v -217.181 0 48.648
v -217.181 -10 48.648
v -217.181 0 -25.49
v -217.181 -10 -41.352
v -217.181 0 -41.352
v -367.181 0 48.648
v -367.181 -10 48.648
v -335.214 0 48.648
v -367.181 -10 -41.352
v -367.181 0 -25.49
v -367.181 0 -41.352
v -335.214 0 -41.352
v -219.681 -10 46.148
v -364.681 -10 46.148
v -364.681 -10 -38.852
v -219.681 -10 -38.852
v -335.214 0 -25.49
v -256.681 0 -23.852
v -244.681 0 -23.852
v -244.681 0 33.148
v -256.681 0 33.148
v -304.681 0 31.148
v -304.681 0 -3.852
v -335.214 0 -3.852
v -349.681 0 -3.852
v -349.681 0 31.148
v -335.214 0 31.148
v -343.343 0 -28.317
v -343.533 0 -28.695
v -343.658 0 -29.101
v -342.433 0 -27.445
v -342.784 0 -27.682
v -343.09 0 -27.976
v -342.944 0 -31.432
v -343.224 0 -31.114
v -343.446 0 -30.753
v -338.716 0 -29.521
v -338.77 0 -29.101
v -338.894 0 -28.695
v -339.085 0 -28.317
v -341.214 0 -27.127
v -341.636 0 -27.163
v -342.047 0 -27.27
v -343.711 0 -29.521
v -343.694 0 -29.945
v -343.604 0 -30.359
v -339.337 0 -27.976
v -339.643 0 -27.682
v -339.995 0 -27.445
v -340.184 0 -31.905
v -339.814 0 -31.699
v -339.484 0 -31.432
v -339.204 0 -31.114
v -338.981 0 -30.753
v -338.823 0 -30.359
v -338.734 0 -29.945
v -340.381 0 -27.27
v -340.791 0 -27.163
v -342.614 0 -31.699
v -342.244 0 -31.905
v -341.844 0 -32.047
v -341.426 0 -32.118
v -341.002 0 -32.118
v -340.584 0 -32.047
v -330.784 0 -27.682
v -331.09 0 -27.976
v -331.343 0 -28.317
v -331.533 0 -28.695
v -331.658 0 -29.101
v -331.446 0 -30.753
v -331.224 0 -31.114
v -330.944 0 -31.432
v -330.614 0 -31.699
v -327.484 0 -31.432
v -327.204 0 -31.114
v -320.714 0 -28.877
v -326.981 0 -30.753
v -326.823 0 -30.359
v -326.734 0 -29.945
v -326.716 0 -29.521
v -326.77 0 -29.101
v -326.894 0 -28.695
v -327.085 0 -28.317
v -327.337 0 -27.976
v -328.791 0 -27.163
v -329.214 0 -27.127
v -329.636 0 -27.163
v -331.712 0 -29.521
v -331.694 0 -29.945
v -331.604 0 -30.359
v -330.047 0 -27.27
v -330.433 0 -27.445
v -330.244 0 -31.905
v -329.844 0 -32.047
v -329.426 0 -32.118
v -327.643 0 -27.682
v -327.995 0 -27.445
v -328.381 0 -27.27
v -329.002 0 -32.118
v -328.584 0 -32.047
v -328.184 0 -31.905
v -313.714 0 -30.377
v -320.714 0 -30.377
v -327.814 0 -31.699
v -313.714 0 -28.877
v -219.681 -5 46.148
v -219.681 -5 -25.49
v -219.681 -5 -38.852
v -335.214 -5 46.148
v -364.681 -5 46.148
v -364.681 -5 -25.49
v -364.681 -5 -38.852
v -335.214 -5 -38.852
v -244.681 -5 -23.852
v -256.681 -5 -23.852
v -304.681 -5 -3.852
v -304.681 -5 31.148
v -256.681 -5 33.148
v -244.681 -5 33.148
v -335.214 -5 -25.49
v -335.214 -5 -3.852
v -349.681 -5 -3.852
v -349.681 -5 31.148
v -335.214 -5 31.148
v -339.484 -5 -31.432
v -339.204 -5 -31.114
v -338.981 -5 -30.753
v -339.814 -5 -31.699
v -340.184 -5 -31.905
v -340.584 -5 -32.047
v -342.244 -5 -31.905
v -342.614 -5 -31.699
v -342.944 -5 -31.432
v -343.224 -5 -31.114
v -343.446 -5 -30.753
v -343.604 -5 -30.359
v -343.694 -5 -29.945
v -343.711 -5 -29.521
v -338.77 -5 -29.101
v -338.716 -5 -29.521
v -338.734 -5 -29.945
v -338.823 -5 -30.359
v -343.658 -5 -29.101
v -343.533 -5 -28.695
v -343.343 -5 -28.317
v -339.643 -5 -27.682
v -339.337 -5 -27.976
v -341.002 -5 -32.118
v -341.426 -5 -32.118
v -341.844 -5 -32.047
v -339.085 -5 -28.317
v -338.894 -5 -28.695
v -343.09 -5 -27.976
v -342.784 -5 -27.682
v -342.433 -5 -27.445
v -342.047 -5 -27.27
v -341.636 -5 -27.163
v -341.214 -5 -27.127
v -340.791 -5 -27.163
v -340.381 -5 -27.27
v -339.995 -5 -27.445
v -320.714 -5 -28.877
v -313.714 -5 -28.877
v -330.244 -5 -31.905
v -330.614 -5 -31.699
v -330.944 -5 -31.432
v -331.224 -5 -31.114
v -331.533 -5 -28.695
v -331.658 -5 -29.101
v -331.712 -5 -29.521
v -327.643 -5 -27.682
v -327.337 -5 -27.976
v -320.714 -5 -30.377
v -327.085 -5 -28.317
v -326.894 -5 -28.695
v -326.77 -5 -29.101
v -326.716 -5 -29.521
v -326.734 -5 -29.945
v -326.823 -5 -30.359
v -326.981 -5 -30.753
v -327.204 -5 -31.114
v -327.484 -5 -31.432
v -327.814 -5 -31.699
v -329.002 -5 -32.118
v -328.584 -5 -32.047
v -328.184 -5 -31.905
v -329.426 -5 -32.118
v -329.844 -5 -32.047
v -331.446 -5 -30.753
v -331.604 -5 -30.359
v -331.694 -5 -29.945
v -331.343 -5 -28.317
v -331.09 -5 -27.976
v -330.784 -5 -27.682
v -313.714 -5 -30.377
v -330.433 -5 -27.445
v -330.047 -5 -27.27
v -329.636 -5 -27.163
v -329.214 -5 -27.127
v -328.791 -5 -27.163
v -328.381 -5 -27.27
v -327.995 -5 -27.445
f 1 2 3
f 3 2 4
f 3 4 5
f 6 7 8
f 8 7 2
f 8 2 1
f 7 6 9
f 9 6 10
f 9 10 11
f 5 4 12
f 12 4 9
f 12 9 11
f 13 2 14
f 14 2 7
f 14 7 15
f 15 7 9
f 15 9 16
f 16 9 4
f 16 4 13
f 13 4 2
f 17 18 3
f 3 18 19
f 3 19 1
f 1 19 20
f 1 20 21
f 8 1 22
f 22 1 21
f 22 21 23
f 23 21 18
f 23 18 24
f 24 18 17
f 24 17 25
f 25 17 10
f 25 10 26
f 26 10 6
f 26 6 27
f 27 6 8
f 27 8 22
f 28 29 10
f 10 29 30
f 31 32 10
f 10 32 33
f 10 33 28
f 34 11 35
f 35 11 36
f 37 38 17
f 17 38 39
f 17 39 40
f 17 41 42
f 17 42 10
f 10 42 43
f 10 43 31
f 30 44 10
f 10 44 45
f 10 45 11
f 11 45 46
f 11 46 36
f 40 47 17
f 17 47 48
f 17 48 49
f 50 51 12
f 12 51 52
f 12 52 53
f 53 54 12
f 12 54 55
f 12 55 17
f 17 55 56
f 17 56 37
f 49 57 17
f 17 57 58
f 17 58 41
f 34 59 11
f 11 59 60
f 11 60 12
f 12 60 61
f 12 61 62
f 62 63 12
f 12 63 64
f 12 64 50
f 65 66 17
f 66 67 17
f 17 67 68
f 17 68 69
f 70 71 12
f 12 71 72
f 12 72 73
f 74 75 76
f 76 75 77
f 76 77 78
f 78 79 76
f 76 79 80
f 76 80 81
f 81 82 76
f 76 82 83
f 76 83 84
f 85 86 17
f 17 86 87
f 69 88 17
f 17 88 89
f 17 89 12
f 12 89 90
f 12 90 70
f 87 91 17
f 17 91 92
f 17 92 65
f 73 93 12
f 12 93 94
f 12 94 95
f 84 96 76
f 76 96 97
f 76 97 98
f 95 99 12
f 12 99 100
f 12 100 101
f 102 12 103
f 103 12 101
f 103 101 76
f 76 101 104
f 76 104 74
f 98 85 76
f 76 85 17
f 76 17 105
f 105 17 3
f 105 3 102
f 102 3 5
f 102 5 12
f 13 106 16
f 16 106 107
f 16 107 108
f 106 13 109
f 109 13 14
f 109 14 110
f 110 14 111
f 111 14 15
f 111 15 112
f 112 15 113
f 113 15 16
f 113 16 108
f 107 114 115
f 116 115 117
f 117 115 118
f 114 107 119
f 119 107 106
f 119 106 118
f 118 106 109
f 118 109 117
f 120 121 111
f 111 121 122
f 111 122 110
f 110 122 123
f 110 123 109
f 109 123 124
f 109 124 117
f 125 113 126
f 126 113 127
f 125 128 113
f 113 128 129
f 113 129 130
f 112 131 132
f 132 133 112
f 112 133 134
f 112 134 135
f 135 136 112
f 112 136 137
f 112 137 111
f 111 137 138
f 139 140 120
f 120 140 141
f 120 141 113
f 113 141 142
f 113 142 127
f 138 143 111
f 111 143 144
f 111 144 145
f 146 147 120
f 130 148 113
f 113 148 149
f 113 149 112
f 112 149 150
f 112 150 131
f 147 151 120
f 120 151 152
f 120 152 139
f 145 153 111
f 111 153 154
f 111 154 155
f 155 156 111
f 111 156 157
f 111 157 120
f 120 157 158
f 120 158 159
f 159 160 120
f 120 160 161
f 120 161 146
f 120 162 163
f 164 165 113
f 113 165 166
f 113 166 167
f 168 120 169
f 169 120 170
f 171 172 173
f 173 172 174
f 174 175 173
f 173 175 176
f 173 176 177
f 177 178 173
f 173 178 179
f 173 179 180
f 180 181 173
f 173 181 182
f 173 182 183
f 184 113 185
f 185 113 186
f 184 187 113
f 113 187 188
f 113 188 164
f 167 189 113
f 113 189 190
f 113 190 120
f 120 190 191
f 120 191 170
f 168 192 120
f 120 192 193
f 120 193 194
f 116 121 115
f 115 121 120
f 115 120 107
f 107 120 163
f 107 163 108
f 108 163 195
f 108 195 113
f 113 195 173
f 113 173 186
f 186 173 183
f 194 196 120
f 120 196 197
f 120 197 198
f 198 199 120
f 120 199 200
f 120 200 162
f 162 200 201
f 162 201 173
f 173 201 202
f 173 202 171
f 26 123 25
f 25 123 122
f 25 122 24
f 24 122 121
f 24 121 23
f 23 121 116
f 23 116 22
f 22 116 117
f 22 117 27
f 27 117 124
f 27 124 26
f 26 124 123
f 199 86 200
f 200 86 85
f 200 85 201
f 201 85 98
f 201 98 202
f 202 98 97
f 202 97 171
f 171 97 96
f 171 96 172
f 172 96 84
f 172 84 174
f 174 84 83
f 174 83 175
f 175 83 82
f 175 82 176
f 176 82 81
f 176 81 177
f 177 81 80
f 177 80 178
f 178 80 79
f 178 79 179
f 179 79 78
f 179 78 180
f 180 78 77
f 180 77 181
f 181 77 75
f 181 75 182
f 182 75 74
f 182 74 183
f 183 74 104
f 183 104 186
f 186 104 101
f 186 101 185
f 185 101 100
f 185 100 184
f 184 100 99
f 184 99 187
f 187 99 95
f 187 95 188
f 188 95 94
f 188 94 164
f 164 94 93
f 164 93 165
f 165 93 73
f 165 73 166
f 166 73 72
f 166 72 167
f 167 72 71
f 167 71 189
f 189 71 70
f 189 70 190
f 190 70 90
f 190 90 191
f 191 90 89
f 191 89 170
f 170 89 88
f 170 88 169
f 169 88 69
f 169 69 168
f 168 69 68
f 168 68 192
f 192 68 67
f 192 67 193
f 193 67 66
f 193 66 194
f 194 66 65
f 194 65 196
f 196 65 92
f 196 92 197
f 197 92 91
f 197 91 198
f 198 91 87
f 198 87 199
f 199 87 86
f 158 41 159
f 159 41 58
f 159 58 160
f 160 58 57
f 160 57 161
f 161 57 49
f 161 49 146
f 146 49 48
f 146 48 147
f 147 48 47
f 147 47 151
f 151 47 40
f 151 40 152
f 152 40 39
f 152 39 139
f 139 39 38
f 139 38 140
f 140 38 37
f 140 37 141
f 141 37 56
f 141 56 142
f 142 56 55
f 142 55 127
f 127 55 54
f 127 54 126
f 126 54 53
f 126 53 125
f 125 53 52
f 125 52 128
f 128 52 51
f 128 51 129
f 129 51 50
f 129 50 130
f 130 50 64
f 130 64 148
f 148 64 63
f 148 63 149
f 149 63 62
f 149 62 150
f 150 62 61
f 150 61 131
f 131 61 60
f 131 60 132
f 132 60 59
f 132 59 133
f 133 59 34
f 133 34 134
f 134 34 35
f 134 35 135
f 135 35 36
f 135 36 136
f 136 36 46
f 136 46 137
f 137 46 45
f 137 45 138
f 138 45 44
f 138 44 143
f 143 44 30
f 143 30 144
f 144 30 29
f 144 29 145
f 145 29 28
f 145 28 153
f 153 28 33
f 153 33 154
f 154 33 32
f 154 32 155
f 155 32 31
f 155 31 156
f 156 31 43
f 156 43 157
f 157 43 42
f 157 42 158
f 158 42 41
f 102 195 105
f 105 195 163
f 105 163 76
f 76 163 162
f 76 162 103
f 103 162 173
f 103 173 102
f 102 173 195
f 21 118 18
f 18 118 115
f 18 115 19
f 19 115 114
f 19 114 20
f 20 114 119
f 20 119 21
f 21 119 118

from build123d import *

# Parameters (mm, degrees)
SKETCH6_W           = 150
SKETCH6_H           = 90
BOSS_EXTRUDE1_DEPTH = 10
SKETCH7_W           = 145
SKETCH7_H           = 85
CUT_EXTRUDE1_DEPTH  = 10
SKETCH2_W           = 45
SKETCH2_H           = 35
CUT_EXTRUDE2_DEPTH  = 10
SKETCH4_R           = 2.5
CUT_EXTRUDE3_DEPTH  = 10
SKETCH5_W           = 7
SKETCH5_H           = 1.5
CUT_EXTRUDE4_DEPTH  = 10
SKETCH3_W           = 12
SKETCH3_H           = 57
CUT_EXTRUDE5_DEPTH  = 10


with BuildPart() as part:
    # Sketch6 → Boss-Extrude1 (new body)
    with BuildSketch(Plane(origin=(0, 0, 0), x_dir=(1, 0, 0), z_dir=(0, 1, 0))):
        with Locations((-292.180819859, -3.647511649)):
            Rectangle(SKETCH6_W, SKETCH6_H)
    extrude(amount=-BOSS_EXTRUDE1_DEPTH)

    # Sketch7 → Cut-Extrude1 (cut)
    with BuildSketch(Plane(origin=(0, -5, 0), x_dir=(1, 0, 0), z_dir=(0, 1, 0))):
        with Locations((-292.180819859, -3.647511649)):
            Rectangle(SKETCH7_W, SKETCH7_H)
    extrude(amount=-CUT_EXTRUDE1_DEPTH, mode=Mode.SUBTRACT)

    # Sketch2 → Cut-Extrude2 (cut)
    with BuildSketch(Plane(origin=(0, 0, 0), x_dir=(1, 0, 0), z_dir=(0, 1, 0))):
        with Locations((-327.180819859, -13.647511649)):
            Rectangle(SKETCH2_W, SKETCH2_H)
    extrude(amount=-CUT_EXTRUDE2_DEPTH, mode=Mode.SUBTRACT)

    # Sketch4 → Cut-Extrude3 (cut)
    with BuildSketch(Plane(origin=(0, 0, 0), x_dir=(1, 0, 0), z_dir=(0, 1, 0))):
        with Locations(Location((-341.213762503, 29.627320544, 0), (0, 0, 270))):
            Circle(SKETCH4_R)
        with Locations(Location((-329.213762503, 29.627320544, 0), (0, 0, 270))):
            Circle(SKETCH4_R)
    extrude(amount=-CUT_EXTRUDE3_DEPTH, mode=Mode.SUBTRACT)

    # Sketch5 → Cut-Extrude4 (cut)
    with BuildSketch(Plane(origin=(0, 0, 0), x_dir=(1, 0, 0), z_dir=(0, 1, 0))):
        with Locations((-317.213762503, 29.627320544)):
            Rectangle(SKETCH5_W, SKETCH5_H)
    extrude(amount=-CUT_EXTRUDE4_DEPTH, mode=Mode.SUBTRACT)

    # Sketch3 → Cut-Extrude5 (cut)
    with BuildSketch(Plane(origin=(0, 0, 0), x_dir=(1, 0, 0), z_dir=(0, 1, 0))):
        with Locations((-250.680819859, -4.647511649)):
            Rectangle(SKETCH3_W, SKETCH3_H)
    extrude(amount=-CUT_EXTRUDE5_DEPTH, mode=Mode.SUBTRACT)


solid = part.part
